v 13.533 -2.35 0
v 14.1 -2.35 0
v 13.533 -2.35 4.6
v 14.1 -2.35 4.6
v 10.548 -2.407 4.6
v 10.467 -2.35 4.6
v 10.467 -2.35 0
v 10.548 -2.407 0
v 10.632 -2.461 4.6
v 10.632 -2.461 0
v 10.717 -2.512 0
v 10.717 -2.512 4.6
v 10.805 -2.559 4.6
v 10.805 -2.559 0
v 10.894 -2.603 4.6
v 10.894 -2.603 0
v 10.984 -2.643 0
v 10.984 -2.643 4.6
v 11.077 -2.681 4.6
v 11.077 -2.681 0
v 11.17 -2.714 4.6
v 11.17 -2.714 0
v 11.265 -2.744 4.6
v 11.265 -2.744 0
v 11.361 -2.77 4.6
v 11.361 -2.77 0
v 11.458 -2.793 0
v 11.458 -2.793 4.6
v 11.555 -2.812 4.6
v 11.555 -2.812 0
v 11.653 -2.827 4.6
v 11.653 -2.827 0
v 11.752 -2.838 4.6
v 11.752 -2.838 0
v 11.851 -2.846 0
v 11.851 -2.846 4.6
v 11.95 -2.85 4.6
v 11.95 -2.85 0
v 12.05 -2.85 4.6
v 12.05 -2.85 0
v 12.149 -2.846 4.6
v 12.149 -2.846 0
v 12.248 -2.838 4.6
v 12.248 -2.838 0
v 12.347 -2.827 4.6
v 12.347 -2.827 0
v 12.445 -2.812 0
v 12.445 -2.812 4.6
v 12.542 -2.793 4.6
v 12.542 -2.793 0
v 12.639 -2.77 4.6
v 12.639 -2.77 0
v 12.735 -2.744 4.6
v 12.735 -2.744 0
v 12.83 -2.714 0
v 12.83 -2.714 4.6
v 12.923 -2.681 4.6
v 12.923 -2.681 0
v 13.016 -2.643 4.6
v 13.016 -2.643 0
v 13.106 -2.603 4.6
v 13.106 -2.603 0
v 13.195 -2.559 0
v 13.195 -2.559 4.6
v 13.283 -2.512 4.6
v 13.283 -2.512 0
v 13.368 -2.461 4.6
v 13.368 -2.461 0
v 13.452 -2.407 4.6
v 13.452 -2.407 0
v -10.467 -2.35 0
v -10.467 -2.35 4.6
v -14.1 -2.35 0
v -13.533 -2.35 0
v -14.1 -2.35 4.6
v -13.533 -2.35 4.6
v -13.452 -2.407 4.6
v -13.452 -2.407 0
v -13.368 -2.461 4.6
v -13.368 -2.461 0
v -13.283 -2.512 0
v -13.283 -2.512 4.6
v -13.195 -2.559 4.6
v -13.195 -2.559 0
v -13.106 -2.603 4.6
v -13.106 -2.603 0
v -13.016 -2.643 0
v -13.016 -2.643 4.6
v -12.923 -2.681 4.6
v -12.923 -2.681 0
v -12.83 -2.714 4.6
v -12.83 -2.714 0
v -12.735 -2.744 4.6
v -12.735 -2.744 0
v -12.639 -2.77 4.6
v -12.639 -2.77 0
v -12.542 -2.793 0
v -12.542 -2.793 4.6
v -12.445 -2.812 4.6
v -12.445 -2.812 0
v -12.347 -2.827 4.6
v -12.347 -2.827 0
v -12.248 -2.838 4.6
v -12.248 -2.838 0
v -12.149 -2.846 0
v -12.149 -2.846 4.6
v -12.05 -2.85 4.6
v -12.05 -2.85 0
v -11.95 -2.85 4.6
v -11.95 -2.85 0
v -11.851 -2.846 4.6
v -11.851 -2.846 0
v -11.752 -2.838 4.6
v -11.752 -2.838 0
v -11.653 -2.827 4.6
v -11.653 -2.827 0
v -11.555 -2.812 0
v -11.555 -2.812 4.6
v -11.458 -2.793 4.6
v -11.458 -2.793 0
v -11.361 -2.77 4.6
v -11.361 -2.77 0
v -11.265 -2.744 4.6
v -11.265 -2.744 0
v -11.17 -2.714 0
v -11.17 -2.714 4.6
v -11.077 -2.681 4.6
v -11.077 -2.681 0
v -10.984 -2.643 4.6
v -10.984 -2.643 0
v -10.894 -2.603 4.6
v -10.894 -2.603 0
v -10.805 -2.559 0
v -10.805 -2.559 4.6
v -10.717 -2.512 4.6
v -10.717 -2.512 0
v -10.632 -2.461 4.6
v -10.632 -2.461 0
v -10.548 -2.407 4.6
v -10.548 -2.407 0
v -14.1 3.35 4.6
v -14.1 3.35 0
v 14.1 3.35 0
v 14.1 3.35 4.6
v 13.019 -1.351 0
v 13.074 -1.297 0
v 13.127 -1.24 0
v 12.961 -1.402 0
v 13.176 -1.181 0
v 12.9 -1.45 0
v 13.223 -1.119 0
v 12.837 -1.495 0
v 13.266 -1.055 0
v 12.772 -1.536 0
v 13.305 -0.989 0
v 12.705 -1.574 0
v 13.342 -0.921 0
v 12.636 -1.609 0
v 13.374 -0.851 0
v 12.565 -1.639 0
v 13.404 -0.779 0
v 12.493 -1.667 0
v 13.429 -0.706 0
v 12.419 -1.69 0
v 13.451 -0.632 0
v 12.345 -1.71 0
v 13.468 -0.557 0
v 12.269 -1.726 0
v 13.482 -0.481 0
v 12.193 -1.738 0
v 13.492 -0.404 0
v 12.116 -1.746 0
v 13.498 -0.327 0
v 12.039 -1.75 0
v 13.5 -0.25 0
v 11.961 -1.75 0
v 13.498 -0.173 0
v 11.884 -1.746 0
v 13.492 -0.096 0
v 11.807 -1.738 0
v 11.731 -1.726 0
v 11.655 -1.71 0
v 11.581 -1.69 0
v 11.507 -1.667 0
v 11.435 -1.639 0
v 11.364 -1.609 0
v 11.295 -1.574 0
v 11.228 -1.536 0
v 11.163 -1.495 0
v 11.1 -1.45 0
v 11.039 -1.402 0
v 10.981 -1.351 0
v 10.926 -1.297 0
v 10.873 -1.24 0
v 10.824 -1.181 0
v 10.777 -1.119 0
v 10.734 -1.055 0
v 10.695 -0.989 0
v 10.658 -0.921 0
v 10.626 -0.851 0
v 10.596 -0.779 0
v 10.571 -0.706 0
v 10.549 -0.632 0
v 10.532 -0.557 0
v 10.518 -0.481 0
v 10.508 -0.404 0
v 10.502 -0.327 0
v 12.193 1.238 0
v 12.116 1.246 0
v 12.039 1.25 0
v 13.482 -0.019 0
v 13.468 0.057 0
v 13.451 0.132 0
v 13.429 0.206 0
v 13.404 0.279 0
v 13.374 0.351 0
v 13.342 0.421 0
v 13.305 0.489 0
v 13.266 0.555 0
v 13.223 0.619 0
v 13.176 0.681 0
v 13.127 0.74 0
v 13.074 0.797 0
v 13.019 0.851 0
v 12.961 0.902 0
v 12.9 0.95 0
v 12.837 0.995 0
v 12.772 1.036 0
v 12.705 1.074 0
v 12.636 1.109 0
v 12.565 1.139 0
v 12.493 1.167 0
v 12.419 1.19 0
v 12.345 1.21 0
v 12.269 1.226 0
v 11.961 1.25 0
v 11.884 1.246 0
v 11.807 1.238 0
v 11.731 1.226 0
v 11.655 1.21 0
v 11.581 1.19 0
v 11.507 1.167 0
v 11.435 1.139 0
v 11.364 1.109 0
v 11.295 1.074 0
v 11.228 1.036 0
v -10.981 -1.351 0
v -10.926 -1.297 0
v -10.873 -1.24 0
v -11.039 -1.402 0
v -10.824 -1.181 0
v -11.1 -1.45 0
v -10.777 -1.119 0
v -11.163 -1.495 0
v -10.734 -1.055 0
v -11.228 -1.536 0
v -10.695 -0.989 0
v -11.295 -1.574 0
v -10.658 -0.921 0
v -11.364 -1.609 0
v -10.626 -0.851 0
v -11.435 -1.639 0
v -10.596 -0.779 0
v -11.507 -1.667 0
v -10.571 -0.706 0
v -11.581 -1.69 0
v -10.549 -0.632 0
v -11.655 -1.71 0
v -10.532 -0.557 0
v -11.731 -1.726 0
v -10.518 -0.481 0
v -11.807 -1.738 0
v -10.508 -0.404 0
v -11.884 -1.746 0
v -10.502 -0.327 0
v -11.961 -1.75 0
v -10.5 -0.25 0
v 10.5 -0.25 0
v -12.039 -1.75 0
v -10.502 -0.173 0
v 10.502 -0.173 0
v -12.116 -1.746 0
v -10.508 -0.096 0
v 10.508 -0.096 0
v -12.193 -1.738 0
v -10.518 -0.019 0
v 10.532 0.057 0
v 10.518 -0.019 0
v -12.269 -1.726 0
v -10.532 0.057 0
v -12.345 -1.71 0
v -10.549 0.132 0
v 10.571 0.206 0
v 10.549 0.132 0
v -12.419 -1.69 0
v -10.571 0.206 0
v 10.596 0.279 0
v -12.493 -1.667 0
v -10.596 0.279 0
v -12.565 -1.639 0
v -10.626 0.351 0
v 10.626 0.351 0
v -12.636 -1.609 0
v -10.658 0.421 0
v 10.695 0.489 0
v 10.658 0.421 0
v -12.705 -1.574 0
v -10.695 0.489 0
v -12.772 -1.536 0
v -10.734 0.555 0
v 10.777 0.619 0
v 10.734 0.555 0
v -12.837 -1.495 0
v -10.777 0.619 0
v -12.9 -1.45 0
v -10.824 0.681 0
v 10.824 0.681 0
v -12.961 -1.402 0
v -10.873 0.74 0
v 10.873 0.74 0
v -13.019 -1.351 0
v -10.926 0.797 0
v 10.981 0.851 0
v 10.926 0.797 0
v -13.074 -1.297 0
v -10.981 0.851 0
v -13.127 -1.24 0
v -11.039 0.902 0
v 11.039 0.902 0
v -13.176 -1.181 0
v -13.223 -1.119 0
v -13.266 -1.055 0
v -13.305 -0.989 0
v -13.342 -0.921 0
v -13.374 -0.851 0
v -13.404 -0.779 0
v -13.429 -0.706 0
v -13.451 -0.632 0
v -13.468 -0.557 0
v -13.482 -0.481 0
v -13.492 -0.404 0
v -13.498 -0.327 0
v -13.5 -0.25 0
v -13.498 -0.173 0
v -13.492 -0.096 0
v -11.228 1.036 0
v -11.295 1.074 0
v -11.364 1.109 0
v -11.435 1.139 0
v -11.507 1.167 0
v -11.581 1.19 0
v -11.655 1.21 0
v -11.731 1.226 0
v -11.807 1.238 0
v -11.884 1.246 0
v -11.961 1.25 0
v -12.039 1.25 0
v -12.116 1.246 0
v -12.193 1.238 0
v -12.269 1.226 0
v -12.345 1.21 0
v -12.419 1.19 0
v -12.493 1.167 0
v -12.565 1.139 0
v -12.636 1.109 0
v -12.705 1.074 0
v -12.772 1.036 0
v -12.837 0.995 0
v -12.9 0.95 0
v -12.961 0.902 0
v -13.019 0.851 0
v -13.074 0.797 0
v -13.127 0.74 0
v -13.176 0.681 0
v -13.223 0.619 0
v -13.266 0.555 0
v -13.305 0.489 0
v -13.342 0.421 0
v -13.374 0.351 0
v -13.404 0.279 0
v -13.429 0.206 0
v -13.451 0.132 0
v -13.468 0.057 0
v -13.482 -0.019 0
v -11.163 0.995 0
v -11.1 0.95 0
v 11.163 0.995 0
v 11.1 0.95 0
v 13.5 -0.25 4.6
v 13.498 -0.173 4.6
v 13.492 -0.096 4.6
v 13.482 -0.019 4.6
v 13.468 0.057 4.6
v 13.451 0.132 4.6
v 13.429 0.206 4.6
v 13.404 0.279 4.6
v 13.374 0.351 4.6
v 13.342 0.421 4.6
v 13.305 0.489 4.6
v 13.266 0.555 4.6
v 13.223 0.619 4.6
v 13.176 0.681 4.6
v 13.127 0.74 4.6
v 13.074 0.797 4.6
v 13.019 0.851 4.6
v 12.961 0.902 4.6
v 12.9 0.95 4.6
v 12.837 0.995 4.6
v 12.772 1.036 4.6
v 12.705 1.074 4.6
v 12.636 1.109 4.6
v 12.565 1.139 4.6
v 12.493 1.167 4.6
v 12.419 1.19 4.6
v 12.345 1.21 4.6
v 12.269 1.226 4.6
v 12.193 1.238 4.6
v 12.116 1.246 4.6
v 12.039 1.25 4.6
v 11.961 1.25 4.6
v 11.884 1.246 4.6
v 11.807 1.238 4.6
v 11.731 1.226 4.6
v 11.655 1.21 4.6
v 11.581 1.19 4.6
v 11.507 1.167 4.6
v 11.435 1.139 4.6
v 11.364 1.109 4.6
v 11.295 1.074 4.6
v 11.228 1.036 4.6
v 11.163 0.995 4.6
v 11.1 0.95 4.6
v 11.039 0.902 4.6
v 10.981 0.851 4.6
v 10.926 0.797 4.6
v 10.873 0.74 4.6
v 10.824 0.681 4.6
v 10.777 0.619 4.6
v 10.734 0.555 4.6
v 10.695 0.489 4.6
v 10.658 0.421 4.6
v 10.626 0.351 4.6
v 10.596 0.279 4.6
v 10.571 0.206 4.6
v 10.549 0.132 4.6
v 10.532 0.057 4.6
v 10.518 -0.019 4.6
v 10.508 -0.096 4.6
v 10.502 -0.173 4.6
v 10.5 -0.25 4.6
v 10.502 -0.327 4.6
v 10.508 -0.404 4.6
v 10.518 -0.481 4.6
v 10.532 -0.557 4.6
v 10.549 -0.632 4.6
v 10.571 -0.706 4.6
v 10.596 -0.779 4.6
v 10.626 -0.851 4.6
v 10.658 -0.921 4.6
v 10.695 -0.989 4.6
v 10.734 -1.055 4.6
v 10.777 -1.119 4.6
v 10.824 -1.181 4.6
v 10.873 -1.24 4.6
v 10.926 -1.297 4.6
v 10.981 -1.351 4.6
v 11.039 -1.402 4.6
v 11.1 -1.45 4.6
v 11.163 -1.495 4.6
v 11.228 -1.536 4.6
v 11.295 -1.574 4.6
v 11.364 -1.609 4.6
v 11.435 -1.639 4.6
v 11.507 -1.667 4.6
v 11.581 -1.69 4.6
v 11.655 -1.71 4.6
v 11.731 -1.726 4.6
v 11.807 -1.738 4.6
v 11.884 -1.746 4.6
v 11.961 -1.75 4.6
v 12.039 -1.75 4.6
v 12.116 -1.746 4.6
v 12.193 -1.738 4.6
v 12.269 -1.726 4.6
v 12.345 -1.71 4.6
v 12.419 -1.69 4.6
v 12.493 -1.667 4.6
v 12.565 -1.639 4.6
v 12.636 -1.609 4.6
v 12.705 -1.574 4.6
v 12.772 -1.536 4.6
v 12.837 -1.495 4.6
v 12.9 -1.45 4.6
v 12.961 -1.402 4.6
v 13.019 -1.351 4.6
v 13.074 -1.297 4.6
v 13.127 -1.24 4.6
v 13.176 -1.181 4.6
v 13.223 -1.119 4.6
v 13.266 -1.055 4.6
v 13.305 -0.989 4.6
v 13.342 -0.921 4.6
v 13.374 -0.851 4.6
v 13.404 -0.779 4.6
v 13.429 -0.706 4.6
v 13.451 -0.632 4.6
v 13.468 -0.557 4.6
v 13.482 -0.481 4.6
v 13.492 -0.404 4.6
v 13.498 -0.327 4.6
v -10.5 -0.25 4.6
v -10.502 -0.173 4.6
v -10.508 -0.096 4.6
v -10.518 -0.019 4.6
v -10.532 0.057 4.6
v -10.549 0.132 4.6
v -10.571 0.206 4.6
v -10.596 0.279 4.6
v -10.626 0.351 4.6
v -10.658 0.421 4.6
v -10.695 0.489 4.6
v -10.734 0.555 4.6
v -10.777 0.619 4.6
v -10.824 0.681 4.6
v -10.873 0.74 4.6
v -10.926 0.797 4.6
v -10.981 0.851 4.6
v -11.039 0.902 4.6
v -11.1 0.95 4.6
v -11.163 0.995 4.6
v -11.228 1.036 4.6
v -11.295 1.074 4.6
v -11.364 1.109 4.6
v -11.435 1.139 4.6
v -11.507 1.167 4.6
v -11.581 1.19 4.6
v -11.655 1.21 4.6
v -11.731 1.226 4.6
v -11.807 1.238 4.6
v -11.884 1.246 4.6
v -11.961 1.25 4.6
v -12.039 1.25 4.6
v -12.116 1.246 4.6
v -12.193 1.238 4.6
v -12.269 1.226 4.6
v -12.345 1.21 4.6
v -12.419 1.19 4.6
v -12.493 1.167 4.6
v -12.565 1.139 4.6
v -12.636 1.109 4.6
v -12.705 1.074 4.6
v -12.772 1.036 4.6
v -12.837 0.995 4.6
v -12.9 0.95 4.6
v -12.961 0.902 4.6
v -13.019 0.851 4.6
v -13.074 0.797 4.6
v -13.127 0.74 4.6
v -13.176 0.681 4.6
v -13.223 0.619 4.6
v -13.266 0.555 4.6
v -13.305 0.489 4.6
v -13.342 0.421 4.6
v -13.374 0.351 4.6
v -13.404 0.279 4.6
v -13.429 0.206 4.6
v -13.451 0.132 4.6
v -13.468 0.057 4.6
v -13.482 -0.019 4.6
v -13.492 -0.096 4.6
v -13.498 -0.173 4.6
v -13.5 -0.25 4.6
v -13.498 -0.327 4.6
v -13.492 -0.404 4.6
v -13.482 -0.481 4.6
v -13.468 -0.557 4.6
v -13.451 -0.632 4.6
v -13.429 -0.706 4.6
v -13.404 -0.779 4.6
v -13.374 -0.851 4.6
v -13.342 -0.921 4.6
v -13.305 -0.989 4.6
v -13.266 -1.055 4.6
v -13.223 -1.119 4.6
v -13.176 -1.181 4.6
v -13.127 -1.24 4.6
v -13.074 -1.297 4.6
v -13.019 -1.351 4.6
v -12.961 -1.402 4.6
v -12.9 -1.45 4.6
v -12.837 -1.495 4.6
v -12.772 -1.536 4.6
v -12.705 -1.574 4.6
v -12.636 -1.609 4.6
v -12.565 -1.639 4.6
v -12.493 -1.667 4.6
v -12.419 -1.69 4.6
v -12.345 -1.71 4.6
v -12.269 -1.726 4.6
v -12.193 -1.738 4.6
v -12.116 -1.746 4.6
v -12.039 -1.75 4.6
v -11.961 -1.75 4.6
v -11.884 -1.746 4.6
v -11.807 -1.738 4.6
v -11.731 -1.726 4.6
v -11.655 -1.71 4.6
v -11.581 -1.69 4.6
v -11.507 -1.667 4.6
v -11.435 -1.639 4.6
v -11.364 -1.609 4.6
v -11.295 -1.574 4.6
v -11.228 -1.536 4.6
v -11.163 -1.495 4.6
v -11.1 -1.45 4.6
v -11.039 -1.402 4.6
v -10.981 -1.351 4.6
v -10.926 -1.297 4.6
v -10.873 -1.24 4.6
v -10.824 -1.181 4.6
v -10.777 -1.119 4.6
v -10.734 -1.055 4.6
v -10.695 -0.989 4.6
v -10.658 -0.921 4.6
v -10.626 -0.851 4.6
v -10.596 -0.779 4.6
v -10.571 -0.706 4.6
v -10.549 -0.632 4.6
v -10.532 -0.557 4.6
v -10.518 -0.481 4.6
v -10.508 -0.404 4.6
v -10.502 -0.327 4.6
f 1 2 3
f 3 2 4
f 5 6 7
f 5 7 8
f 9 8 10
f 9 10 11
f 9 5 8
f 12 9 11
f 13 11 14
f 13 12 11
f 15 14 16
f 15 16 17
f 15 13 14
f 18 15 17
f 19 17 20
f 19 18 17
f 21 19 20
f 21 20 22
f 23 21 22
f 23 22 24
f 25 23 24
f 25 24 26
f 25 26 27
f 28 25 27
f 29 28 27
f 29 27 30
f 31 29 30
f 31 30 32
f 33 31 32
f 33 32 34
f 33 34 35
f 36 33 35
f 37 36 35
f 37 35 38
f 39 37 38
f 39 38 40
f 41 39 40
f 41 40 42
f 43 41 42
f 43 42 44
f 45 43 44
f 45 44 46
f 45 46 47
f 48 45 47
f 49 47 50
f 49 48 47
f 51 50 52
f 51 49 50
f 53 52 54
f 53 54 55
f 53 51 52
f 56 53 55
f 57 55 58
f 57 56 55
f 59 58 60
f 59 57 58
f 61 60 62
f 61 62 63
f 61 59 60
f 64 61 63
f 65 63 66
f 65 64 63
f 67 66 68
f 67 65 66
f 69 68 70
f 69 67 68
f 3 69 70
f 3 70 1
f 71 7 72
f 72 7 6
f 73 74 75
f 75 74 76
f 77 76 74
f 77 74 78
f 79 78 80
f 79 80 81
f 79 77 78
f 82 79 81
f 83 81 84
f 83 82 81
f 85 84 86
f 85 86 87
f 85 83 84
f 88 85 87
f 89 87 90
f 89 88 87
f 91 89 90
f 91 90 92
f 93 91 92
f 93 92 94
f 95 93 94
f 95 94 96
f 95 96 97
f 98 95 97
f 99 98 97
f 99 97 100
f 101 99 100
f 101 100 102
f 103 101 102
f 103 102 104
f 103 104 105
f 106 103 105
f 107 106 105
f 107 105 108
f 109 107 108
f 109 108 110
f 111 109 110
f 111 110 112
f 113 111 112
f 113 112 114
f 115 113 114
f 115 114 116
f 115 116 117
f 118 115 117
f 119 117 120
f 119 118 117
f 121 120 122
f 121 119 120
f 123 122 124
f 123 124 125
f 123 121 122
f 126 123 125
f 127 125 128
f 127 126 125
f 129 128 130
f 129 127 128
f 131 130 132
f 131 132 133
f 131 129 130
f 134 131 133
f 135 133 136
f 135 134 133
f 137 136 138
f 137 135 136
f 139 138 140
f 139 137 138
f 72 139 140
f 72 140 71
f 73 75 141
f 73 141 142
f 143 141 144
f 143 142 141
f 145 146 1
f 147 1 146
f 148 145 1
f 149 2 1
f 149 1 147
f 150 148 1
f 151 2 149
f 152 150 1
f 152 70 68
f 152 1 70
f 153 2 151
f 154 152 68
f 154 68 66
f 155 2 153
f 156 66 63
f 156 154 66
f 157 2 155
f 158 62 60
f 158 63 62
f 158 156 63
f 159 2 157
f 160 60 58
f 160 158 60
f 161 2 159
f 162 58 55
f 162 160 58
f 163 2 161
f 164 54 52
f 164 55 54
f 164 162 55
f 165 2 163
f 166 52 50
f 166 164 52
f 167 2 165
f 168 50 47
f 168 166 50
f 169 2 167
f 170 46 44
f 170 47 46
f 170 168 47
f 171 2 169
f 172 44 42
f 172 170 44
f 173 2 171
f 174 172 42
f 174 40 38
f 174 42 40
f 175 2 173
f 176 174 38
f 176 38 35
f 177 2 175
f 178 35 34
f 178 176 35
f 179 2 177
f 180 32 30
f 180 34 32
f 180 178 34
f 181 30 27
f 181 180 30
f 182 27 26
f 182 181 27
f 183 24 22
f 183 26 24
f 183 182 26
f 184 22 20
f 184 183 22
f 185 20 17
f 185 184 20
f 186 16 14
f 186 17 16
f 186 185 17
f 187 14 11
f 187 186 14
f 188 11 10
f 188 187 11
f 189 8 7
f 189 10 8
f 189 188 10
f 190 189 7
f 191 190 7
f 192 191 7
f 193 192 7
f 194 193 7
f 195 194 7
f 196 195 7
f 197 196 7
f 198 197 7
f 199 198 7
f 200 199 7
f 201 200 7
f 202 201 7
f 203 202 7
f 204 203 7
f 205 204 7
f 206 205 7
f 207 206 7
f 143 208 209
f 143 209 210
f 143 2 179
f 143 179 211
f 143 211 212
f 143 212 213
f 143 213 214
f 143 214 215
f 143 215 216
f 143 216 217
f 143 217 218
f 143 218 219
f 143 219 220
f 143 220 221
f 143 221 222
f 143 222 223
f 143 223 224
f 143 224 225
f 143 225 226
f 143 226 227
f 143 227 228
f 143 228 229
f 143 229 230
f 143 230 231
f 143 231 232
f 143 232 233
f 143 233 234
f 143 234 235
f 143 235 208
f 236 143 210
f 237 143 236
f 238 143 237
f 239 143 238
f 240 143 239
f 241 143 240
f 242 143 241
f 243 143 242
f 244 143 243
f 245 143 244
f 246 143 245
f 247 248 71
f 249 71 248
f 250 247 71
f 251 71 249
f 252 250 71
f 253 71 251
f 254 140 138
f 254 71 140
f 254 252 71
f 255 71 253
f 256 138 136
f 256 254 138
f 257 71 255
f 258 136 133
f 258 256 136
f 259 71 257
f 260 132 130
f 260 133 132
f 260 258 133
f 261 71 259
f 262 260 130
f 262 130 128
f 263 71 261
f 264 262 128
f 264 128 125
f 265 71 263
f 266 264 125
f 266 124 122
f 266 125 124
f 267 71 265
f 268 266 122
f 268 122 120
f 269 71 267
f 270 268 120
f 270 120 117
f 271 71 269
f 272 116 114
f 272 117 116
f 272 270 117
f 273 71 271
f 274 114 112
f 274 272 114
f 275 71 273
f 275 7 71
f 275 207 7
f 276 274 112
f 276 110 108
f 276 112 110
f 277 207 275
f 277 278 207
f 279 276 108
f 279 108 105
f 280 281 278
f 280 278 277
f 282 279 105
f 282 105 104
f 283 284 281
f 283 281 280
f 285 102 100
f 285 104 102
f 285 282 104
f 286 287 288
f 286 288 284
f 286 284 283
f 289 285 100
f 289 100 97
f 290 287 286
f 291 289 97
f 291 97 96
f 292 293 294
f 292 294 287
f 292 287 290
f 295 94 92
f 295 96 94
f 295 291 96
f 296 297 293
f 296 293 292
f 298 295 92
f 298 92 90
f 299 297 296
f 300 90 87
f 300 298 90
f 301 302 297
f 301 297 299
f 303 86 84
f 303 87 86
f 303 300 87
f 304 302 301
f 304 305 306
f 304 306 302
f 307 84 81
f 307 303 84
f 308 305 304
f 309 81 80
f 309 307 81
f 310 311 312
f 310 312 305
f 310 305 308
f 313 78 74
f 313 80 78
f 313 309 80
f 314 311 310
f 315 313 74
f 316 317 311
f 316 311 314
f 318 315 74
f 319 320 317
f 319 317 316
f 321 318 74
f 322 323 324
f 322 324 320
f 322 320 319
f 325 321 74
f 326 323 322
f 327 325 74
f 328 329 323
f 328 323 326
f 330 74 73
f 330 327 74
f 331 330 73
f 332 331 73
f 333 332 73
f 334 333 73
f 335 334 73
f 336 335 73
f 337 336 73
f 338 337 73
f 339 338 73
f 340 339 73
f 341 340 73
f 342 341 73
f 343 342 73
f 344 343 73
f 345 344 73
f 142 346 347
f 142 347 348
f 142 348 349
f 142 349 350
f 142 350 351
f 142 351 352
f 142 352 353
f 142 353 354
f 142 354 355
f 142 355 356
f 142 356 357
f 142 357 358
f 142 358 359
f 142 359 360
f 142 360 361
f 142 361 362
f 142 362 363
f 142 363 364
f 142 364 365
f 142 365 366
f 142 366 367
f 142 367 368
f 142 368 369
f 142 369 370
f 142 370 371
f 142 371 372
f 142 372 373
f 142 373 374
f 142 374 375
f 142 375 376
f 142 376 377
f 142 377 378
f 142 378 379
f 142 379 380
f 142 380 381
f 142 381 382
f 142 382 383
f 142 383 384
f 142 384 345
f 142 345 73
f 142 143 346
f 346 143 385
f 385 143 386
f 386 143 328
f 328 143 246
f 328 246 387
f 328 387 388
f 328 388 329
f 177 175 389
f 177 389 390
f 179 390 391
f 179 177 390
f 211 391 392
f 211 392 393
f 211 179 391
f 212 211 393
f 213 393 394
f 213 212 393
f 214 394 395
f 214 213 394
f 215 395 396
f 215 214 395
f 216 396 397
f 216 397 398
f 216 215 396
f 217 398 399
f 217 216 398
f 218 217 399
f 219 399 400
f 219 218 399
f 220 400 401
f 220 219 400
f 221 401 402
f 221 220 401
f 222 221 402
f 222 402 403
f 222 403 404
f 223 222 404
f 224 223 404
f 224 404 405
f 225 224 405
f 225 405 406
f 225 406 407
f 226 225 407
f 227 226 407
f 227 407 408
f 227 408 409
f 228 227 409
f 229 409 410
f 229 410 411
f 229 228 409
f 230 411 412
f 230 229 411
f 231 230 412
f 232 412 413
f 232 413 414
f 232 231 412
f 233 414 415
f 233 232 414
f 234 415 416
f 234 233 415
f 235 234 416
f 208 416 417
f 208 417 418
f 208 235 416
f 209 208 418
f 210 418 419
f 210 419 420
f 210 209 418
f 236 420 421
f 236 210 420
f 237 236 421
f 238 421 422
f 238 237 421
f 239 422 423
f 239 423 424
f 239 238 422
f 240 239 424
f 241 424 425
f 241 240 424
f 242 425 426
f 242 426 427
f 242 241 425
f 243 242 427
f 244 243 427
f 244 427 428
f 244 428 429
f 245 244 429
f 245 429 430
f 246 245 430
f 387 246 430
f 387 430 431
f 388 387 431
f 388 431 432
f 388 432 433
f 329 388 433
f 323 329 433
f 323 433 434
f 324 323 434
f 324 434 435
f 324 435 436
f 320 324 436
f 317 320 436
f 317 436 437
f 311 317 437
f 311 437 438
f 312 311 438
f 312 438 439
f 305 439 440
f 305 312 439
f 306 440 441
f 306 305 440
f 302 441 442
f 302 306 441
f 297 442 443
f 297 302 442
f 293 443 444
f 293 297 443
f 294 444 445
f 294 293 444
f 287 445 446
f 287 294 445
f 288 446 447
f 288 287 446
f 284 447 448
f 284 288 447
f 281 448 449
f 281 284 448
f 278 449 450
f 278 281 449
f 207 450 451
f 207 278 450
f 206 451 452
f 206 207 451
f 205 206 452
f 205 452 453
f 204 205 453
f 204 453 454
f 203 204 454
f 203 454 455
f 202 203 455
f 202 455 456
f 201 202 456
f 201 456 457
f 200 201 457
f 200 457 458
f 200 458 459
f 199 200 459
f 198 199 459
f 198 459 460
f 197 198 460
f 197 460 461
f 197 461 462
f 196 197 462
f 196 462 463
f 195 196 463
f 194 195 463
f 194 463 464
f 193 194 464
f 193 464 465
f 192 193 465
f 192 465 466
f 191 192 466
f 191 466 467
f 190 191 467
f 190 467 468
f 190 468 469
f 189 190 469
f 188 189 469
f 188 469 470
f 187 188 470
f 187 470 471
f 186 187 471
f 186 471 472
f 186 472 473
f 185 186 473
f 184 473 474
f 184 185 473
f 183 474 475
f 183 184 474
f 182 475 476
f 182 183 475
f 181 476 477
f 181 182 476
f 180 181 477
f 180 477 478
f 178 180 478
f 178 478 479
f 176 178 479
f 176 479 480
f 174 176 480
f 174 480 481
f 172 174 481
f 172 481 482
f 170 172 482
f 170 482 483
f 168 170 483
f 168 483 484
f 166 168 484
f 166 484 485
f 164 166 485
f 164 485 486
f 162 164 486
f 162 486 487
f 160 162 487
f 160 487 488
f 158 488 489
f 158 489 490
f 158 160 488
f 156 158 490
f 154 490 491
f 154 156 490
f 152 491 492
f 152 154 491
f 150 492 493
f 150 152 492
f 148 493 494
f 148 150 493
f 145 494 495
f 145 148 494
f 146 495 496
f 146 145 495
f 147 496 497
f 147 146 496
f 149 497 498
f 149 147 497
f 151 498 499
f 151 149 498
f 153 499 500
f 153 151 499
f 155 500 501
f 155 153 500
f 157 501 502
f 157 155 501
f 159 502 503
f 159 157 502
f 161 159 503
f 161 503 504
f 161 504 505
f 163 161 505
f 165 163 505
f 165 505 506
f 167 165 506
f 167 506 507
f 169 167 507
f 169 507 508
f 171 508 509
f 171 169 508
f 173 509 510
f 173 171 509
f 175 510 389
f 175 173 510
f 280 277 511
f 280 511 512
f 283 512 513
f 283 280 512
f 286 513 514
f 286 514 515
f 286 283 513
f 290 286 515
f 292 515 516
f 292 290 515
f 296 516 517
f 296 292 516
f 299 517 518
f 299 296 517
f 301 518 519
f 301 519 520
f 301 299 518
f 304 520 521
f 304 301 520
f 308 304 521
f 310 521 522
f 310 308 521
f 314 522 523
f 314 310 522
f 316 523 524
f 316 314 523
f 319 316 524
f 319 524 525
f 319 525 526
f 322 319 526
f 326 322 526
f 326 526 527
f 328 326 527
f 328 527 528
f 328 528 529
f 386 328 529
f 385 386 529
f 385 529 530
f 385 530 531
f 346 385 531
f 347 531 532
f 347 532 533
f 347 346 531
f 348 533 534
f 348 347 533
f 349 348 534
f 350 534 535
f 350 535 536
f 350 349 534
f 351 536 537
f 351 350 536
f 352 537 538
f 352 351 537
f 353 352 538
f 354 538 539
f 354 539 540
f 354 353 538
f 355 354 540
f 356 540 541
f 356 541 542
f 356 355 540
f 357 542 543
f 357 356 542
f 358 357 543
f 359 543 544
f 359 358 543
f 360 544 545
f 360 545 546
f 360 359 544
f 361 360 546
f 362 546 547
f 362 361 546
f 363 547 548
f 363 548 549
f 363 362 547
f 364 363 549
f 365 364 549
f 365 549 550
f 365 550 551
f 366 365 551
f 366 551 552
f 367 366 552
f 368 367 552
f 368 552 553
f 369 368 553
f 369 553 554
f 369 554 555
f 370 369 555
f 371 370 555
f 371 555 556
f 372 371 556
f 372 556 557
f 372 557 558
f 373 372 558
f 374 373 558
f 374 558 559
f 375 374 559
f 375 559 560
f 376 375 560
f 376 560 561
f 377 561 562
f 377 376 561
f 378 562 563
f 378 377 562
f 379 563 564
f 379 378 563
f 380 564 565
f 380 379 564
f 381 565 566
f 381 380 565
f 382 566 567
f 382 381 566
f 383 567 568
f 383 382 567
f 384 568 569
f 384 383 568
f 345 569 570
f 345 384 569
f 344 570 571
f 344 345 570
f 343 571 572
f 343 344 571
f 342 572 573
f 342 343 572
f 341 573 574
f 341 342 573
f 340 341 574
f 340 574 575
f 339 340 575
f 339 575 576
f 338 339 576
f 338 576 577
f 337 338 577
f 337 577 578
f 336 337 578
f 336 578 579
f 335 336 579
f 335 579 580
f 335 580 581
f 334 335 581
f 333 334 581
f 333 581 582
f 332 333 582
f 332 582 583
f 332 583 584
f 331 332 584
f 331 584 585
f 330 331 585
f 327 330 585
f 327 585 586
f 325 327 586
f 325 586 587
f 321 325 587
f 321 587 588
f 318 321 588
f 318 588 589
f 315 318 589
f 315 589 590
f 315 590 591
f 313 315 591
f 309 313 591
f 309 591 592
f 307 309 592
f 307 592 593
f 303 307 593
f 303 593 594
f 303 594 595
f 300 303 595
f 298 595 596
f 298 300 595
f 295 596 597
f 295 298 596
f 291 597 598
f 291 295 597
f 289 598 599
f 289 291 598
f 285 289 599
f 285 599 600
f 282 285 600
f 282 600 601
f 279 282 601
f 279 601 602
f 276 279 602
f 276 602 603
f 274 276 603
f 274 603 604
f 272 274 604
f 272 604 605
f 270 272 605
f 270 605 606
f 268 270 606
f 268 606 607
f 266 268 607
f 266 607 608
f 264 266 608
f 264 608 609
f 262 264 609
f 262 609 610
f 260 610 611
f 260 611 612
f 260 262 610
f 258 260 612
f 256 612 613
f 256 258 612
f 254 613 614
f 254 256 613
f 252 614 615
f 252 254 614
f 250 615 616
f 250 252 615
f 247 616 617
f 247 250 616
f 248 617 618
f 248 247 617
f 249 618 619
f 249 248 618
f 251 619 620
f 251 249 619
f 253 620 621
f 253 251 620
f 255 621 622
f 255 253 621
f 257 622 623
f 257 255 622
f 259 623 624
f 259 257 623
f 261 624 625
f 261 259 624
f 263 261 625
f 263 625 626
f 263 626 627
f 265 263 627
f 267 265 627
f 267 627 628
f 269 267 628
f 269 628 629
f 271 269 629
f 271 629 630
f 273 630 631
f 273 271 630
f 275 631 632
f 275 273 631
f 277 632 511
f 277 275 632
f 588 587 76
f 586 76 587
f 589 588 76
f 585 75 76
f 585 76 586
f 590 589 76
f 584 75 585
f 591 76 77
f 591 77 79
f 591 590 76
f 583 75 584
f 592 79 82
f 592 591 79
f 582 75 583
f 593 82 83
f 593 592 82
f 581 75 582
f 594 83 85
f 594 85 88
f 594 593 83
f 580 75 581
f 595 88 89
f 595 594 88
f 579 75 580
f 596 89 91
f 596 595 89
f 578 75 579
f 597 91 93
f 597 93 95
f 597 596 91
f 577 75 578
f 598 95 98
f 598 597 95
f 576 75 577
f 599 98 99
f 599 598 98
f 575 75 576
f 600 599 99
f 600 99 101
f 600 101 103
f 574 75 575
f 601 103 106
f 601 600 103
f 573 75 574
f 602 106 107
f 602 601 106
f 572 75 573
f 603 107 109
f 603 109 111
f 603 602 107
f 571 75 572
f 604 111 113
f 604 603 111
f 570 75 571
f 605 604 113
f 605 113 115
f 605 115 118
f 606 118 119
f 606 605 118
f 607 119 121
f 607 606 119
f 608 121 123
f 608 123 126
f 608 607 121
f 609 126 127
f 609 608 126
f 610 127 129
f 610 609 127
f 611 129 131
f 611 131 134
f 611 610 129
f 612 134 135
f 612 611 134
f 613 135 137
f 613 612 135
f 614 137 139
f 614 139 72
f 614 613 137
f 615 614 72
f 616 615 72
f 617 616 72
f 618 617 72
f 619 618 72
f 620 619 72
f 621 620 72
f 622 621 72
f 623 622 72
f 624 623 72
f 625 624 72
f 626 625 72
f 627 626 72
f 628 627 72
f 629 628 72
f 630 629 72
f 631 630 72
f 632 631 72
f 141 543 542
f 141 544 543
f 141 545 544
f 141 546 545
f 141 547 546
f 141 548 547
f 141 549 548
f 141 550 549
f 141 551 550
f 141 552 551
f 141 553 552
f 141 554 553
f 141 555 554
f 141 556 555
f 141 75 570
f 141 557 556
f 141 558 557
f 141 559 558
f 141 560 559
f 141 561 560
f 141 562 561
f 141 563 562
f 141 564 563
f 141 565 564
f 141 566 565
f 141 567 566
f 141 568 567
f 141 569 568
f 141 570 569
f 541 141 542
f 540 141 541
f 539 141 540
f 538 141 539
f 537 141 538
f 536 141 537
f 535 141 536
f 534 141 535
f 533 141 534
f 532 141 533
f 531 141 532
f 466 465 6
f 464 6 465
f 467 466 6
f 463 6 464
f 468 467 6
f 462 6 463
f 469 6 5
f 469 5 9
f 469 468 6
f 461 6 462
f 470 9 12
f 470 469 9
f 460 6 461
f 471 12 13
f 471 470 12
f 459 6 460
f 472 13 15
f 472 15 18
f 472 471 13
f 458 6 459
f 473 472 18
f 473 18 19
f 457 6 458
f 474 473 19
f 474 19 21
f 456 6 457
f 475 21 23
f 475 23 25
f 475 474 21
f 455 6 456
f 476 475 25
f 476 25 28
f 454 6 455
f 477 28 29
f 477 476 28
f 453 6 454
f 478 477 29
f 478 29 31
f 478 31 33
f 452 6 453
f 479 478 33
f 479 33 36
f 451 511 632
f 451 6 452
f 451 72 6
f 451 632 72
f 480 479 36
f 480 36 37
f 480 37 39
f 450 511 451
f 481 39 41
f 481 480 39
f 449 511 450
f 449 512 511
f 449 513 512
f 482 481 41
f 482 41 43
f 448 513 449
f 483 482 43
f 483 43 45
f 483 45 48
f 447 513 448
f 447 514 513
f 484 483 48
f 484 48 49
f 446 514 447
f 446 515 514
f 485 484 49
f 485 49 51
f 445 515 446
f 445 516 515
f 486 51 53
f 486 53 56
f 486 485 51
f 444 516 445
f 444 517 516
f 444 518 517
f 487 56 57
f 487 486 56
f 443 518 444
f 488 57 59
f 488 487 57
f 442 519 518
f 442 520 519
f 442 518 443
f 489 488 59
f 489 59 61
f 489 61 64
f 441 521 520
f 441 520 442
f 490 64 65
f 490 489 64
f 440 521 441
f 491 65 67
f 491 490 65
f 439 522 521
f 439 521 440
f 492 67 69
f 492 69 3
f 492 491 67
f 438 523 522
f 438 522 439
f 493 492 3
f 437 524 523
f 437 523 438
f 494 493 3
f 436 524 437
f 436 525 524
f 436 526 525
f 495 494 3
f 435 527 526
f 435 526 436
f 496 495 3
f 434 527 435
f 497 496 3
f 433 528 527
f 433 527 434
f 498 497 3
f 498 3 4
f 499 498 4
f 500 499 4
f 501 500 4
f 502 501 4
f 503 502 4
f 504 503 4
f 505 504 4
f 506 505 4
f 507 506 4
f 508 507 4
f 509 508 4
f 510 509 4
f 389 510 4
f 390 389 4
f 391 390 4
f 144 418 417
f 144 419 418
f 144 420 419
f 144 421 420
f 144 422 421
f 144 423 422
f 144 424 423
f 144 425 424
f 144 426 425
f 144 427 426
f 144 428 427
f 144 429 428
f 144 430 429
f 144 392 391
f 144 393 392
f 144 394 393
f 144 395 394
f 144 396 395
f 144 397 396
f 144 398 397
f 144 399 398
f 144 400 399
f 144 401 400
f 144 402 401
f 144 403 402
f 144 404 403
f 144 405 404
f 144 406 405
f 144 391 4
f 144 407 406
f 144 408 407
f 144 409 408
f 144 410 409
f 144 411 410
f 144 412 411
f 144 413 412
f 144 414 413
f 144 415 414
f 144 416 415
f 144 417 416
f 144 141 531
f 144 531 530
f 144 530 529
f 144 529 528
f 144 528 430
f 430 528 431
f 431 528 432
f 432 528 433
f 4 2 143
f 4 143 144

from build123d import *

# Parameters (mm, degrees)
SKETCH_W       = 28.2
SKETCH_H       = 4.7
SKETCH_R       = 1.5
PAD_DEPTH      = 4.6
PAD001_DEPTH   = 4.6
PAD001_FACE2_W = 28.2
PAD001_FACE2_H = 4.6
PAD002_DEPTH   = 1


with BuildPart() as part:
    # Sketch → Pad (new body)
    with BuildSketch(Plane.XY):
        Rectangle(SKETCH_W, SKETCH_H)
        with Locations((-12, -0.25)):
            Circle(SKETCH_R, mode=Mode.SUBTRACT)
        with Locations((12, -0.25)):
            Circle(SKETCH_R, mode=Mode.SUBTRACT)
    extrude(amount=PAD_DEPTH)

    # Sketch001 (on Face8 of Pad) → Pad001 (join)
    with BuildSketch(Plane.XY.offset(4.6)):
        with BuildLine():
            ThreePointArc((10.467029, -2.35), (12, -2.85), (13.532971, -2.35))
            Line((10.467029, -2.35), (13.532971, -2.35))
        make_face()
        with BuildLine():
            ThreePointArc((-13.532971, -2.35), (-12, -2.85), (-10.467029, -2.35))
            Line((-13.532971, -2.35), (-10.467029, -2.35))
        make_face()
    extrude(amount=-PAD001_DEPTH)

    # Pad001 Face2 → Pad002 (add)
    with BuildSketch(Plane(origin=(0, 2.35, 2.3), x_dir=(1, 0, 0), z_dir=(0, 1, 0))):
        Rectangle(PAD001_FACE2_W, PAD001_FACE2_H)
    extrude(amount=PAD002_DEPTH)


solid = part.part
